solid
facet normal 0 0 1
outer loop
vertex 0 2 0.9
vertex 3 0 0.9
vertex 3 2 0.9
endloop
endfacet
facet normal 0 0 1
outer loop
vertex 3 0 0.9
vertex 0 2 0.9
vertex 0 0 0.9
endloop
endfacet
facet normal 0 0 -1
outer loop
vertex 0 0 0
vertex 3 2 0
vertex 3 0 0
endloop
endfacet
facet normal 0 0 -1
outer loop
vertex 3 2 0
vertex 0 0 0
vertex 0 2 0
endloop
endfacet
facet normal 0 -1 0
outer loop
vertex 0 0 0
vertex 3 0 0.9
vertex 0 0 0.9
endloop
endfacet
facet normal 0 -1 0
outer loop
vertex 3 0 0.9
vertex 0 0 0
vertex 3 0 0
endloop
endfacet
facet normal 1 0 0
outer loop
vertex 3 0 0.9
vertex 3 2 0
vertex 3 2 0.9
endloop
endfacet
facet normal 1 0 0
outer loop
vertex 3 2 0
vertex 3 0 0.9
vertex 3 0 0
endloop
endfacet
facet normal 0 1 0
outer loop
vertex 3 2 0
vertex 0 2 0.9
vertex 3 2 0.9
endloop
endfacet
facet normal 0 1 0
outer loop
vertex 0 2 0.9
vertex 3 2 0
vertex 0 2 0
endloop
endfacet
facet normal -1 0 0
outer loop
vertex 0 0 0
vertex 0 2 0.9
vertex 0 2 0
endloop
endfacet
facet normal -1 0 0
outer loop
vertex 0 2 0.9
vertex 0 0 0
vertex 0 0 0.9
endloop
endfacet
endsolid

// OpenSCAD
/* Warning, this is a very basic generator with a lot of approximation 
input data : [VQFN, 6MW, 3x2x0.9mm, 12, , C, C04-00626C]
generated by com.zoubworld.electronics.cad.model3d.Basic
Date : Sun Feb 15 10:50:49 CET 2026
*/

//body
color("black")
translate([0,0,0])
cube([3.0,2.0,0.9], center=false);
